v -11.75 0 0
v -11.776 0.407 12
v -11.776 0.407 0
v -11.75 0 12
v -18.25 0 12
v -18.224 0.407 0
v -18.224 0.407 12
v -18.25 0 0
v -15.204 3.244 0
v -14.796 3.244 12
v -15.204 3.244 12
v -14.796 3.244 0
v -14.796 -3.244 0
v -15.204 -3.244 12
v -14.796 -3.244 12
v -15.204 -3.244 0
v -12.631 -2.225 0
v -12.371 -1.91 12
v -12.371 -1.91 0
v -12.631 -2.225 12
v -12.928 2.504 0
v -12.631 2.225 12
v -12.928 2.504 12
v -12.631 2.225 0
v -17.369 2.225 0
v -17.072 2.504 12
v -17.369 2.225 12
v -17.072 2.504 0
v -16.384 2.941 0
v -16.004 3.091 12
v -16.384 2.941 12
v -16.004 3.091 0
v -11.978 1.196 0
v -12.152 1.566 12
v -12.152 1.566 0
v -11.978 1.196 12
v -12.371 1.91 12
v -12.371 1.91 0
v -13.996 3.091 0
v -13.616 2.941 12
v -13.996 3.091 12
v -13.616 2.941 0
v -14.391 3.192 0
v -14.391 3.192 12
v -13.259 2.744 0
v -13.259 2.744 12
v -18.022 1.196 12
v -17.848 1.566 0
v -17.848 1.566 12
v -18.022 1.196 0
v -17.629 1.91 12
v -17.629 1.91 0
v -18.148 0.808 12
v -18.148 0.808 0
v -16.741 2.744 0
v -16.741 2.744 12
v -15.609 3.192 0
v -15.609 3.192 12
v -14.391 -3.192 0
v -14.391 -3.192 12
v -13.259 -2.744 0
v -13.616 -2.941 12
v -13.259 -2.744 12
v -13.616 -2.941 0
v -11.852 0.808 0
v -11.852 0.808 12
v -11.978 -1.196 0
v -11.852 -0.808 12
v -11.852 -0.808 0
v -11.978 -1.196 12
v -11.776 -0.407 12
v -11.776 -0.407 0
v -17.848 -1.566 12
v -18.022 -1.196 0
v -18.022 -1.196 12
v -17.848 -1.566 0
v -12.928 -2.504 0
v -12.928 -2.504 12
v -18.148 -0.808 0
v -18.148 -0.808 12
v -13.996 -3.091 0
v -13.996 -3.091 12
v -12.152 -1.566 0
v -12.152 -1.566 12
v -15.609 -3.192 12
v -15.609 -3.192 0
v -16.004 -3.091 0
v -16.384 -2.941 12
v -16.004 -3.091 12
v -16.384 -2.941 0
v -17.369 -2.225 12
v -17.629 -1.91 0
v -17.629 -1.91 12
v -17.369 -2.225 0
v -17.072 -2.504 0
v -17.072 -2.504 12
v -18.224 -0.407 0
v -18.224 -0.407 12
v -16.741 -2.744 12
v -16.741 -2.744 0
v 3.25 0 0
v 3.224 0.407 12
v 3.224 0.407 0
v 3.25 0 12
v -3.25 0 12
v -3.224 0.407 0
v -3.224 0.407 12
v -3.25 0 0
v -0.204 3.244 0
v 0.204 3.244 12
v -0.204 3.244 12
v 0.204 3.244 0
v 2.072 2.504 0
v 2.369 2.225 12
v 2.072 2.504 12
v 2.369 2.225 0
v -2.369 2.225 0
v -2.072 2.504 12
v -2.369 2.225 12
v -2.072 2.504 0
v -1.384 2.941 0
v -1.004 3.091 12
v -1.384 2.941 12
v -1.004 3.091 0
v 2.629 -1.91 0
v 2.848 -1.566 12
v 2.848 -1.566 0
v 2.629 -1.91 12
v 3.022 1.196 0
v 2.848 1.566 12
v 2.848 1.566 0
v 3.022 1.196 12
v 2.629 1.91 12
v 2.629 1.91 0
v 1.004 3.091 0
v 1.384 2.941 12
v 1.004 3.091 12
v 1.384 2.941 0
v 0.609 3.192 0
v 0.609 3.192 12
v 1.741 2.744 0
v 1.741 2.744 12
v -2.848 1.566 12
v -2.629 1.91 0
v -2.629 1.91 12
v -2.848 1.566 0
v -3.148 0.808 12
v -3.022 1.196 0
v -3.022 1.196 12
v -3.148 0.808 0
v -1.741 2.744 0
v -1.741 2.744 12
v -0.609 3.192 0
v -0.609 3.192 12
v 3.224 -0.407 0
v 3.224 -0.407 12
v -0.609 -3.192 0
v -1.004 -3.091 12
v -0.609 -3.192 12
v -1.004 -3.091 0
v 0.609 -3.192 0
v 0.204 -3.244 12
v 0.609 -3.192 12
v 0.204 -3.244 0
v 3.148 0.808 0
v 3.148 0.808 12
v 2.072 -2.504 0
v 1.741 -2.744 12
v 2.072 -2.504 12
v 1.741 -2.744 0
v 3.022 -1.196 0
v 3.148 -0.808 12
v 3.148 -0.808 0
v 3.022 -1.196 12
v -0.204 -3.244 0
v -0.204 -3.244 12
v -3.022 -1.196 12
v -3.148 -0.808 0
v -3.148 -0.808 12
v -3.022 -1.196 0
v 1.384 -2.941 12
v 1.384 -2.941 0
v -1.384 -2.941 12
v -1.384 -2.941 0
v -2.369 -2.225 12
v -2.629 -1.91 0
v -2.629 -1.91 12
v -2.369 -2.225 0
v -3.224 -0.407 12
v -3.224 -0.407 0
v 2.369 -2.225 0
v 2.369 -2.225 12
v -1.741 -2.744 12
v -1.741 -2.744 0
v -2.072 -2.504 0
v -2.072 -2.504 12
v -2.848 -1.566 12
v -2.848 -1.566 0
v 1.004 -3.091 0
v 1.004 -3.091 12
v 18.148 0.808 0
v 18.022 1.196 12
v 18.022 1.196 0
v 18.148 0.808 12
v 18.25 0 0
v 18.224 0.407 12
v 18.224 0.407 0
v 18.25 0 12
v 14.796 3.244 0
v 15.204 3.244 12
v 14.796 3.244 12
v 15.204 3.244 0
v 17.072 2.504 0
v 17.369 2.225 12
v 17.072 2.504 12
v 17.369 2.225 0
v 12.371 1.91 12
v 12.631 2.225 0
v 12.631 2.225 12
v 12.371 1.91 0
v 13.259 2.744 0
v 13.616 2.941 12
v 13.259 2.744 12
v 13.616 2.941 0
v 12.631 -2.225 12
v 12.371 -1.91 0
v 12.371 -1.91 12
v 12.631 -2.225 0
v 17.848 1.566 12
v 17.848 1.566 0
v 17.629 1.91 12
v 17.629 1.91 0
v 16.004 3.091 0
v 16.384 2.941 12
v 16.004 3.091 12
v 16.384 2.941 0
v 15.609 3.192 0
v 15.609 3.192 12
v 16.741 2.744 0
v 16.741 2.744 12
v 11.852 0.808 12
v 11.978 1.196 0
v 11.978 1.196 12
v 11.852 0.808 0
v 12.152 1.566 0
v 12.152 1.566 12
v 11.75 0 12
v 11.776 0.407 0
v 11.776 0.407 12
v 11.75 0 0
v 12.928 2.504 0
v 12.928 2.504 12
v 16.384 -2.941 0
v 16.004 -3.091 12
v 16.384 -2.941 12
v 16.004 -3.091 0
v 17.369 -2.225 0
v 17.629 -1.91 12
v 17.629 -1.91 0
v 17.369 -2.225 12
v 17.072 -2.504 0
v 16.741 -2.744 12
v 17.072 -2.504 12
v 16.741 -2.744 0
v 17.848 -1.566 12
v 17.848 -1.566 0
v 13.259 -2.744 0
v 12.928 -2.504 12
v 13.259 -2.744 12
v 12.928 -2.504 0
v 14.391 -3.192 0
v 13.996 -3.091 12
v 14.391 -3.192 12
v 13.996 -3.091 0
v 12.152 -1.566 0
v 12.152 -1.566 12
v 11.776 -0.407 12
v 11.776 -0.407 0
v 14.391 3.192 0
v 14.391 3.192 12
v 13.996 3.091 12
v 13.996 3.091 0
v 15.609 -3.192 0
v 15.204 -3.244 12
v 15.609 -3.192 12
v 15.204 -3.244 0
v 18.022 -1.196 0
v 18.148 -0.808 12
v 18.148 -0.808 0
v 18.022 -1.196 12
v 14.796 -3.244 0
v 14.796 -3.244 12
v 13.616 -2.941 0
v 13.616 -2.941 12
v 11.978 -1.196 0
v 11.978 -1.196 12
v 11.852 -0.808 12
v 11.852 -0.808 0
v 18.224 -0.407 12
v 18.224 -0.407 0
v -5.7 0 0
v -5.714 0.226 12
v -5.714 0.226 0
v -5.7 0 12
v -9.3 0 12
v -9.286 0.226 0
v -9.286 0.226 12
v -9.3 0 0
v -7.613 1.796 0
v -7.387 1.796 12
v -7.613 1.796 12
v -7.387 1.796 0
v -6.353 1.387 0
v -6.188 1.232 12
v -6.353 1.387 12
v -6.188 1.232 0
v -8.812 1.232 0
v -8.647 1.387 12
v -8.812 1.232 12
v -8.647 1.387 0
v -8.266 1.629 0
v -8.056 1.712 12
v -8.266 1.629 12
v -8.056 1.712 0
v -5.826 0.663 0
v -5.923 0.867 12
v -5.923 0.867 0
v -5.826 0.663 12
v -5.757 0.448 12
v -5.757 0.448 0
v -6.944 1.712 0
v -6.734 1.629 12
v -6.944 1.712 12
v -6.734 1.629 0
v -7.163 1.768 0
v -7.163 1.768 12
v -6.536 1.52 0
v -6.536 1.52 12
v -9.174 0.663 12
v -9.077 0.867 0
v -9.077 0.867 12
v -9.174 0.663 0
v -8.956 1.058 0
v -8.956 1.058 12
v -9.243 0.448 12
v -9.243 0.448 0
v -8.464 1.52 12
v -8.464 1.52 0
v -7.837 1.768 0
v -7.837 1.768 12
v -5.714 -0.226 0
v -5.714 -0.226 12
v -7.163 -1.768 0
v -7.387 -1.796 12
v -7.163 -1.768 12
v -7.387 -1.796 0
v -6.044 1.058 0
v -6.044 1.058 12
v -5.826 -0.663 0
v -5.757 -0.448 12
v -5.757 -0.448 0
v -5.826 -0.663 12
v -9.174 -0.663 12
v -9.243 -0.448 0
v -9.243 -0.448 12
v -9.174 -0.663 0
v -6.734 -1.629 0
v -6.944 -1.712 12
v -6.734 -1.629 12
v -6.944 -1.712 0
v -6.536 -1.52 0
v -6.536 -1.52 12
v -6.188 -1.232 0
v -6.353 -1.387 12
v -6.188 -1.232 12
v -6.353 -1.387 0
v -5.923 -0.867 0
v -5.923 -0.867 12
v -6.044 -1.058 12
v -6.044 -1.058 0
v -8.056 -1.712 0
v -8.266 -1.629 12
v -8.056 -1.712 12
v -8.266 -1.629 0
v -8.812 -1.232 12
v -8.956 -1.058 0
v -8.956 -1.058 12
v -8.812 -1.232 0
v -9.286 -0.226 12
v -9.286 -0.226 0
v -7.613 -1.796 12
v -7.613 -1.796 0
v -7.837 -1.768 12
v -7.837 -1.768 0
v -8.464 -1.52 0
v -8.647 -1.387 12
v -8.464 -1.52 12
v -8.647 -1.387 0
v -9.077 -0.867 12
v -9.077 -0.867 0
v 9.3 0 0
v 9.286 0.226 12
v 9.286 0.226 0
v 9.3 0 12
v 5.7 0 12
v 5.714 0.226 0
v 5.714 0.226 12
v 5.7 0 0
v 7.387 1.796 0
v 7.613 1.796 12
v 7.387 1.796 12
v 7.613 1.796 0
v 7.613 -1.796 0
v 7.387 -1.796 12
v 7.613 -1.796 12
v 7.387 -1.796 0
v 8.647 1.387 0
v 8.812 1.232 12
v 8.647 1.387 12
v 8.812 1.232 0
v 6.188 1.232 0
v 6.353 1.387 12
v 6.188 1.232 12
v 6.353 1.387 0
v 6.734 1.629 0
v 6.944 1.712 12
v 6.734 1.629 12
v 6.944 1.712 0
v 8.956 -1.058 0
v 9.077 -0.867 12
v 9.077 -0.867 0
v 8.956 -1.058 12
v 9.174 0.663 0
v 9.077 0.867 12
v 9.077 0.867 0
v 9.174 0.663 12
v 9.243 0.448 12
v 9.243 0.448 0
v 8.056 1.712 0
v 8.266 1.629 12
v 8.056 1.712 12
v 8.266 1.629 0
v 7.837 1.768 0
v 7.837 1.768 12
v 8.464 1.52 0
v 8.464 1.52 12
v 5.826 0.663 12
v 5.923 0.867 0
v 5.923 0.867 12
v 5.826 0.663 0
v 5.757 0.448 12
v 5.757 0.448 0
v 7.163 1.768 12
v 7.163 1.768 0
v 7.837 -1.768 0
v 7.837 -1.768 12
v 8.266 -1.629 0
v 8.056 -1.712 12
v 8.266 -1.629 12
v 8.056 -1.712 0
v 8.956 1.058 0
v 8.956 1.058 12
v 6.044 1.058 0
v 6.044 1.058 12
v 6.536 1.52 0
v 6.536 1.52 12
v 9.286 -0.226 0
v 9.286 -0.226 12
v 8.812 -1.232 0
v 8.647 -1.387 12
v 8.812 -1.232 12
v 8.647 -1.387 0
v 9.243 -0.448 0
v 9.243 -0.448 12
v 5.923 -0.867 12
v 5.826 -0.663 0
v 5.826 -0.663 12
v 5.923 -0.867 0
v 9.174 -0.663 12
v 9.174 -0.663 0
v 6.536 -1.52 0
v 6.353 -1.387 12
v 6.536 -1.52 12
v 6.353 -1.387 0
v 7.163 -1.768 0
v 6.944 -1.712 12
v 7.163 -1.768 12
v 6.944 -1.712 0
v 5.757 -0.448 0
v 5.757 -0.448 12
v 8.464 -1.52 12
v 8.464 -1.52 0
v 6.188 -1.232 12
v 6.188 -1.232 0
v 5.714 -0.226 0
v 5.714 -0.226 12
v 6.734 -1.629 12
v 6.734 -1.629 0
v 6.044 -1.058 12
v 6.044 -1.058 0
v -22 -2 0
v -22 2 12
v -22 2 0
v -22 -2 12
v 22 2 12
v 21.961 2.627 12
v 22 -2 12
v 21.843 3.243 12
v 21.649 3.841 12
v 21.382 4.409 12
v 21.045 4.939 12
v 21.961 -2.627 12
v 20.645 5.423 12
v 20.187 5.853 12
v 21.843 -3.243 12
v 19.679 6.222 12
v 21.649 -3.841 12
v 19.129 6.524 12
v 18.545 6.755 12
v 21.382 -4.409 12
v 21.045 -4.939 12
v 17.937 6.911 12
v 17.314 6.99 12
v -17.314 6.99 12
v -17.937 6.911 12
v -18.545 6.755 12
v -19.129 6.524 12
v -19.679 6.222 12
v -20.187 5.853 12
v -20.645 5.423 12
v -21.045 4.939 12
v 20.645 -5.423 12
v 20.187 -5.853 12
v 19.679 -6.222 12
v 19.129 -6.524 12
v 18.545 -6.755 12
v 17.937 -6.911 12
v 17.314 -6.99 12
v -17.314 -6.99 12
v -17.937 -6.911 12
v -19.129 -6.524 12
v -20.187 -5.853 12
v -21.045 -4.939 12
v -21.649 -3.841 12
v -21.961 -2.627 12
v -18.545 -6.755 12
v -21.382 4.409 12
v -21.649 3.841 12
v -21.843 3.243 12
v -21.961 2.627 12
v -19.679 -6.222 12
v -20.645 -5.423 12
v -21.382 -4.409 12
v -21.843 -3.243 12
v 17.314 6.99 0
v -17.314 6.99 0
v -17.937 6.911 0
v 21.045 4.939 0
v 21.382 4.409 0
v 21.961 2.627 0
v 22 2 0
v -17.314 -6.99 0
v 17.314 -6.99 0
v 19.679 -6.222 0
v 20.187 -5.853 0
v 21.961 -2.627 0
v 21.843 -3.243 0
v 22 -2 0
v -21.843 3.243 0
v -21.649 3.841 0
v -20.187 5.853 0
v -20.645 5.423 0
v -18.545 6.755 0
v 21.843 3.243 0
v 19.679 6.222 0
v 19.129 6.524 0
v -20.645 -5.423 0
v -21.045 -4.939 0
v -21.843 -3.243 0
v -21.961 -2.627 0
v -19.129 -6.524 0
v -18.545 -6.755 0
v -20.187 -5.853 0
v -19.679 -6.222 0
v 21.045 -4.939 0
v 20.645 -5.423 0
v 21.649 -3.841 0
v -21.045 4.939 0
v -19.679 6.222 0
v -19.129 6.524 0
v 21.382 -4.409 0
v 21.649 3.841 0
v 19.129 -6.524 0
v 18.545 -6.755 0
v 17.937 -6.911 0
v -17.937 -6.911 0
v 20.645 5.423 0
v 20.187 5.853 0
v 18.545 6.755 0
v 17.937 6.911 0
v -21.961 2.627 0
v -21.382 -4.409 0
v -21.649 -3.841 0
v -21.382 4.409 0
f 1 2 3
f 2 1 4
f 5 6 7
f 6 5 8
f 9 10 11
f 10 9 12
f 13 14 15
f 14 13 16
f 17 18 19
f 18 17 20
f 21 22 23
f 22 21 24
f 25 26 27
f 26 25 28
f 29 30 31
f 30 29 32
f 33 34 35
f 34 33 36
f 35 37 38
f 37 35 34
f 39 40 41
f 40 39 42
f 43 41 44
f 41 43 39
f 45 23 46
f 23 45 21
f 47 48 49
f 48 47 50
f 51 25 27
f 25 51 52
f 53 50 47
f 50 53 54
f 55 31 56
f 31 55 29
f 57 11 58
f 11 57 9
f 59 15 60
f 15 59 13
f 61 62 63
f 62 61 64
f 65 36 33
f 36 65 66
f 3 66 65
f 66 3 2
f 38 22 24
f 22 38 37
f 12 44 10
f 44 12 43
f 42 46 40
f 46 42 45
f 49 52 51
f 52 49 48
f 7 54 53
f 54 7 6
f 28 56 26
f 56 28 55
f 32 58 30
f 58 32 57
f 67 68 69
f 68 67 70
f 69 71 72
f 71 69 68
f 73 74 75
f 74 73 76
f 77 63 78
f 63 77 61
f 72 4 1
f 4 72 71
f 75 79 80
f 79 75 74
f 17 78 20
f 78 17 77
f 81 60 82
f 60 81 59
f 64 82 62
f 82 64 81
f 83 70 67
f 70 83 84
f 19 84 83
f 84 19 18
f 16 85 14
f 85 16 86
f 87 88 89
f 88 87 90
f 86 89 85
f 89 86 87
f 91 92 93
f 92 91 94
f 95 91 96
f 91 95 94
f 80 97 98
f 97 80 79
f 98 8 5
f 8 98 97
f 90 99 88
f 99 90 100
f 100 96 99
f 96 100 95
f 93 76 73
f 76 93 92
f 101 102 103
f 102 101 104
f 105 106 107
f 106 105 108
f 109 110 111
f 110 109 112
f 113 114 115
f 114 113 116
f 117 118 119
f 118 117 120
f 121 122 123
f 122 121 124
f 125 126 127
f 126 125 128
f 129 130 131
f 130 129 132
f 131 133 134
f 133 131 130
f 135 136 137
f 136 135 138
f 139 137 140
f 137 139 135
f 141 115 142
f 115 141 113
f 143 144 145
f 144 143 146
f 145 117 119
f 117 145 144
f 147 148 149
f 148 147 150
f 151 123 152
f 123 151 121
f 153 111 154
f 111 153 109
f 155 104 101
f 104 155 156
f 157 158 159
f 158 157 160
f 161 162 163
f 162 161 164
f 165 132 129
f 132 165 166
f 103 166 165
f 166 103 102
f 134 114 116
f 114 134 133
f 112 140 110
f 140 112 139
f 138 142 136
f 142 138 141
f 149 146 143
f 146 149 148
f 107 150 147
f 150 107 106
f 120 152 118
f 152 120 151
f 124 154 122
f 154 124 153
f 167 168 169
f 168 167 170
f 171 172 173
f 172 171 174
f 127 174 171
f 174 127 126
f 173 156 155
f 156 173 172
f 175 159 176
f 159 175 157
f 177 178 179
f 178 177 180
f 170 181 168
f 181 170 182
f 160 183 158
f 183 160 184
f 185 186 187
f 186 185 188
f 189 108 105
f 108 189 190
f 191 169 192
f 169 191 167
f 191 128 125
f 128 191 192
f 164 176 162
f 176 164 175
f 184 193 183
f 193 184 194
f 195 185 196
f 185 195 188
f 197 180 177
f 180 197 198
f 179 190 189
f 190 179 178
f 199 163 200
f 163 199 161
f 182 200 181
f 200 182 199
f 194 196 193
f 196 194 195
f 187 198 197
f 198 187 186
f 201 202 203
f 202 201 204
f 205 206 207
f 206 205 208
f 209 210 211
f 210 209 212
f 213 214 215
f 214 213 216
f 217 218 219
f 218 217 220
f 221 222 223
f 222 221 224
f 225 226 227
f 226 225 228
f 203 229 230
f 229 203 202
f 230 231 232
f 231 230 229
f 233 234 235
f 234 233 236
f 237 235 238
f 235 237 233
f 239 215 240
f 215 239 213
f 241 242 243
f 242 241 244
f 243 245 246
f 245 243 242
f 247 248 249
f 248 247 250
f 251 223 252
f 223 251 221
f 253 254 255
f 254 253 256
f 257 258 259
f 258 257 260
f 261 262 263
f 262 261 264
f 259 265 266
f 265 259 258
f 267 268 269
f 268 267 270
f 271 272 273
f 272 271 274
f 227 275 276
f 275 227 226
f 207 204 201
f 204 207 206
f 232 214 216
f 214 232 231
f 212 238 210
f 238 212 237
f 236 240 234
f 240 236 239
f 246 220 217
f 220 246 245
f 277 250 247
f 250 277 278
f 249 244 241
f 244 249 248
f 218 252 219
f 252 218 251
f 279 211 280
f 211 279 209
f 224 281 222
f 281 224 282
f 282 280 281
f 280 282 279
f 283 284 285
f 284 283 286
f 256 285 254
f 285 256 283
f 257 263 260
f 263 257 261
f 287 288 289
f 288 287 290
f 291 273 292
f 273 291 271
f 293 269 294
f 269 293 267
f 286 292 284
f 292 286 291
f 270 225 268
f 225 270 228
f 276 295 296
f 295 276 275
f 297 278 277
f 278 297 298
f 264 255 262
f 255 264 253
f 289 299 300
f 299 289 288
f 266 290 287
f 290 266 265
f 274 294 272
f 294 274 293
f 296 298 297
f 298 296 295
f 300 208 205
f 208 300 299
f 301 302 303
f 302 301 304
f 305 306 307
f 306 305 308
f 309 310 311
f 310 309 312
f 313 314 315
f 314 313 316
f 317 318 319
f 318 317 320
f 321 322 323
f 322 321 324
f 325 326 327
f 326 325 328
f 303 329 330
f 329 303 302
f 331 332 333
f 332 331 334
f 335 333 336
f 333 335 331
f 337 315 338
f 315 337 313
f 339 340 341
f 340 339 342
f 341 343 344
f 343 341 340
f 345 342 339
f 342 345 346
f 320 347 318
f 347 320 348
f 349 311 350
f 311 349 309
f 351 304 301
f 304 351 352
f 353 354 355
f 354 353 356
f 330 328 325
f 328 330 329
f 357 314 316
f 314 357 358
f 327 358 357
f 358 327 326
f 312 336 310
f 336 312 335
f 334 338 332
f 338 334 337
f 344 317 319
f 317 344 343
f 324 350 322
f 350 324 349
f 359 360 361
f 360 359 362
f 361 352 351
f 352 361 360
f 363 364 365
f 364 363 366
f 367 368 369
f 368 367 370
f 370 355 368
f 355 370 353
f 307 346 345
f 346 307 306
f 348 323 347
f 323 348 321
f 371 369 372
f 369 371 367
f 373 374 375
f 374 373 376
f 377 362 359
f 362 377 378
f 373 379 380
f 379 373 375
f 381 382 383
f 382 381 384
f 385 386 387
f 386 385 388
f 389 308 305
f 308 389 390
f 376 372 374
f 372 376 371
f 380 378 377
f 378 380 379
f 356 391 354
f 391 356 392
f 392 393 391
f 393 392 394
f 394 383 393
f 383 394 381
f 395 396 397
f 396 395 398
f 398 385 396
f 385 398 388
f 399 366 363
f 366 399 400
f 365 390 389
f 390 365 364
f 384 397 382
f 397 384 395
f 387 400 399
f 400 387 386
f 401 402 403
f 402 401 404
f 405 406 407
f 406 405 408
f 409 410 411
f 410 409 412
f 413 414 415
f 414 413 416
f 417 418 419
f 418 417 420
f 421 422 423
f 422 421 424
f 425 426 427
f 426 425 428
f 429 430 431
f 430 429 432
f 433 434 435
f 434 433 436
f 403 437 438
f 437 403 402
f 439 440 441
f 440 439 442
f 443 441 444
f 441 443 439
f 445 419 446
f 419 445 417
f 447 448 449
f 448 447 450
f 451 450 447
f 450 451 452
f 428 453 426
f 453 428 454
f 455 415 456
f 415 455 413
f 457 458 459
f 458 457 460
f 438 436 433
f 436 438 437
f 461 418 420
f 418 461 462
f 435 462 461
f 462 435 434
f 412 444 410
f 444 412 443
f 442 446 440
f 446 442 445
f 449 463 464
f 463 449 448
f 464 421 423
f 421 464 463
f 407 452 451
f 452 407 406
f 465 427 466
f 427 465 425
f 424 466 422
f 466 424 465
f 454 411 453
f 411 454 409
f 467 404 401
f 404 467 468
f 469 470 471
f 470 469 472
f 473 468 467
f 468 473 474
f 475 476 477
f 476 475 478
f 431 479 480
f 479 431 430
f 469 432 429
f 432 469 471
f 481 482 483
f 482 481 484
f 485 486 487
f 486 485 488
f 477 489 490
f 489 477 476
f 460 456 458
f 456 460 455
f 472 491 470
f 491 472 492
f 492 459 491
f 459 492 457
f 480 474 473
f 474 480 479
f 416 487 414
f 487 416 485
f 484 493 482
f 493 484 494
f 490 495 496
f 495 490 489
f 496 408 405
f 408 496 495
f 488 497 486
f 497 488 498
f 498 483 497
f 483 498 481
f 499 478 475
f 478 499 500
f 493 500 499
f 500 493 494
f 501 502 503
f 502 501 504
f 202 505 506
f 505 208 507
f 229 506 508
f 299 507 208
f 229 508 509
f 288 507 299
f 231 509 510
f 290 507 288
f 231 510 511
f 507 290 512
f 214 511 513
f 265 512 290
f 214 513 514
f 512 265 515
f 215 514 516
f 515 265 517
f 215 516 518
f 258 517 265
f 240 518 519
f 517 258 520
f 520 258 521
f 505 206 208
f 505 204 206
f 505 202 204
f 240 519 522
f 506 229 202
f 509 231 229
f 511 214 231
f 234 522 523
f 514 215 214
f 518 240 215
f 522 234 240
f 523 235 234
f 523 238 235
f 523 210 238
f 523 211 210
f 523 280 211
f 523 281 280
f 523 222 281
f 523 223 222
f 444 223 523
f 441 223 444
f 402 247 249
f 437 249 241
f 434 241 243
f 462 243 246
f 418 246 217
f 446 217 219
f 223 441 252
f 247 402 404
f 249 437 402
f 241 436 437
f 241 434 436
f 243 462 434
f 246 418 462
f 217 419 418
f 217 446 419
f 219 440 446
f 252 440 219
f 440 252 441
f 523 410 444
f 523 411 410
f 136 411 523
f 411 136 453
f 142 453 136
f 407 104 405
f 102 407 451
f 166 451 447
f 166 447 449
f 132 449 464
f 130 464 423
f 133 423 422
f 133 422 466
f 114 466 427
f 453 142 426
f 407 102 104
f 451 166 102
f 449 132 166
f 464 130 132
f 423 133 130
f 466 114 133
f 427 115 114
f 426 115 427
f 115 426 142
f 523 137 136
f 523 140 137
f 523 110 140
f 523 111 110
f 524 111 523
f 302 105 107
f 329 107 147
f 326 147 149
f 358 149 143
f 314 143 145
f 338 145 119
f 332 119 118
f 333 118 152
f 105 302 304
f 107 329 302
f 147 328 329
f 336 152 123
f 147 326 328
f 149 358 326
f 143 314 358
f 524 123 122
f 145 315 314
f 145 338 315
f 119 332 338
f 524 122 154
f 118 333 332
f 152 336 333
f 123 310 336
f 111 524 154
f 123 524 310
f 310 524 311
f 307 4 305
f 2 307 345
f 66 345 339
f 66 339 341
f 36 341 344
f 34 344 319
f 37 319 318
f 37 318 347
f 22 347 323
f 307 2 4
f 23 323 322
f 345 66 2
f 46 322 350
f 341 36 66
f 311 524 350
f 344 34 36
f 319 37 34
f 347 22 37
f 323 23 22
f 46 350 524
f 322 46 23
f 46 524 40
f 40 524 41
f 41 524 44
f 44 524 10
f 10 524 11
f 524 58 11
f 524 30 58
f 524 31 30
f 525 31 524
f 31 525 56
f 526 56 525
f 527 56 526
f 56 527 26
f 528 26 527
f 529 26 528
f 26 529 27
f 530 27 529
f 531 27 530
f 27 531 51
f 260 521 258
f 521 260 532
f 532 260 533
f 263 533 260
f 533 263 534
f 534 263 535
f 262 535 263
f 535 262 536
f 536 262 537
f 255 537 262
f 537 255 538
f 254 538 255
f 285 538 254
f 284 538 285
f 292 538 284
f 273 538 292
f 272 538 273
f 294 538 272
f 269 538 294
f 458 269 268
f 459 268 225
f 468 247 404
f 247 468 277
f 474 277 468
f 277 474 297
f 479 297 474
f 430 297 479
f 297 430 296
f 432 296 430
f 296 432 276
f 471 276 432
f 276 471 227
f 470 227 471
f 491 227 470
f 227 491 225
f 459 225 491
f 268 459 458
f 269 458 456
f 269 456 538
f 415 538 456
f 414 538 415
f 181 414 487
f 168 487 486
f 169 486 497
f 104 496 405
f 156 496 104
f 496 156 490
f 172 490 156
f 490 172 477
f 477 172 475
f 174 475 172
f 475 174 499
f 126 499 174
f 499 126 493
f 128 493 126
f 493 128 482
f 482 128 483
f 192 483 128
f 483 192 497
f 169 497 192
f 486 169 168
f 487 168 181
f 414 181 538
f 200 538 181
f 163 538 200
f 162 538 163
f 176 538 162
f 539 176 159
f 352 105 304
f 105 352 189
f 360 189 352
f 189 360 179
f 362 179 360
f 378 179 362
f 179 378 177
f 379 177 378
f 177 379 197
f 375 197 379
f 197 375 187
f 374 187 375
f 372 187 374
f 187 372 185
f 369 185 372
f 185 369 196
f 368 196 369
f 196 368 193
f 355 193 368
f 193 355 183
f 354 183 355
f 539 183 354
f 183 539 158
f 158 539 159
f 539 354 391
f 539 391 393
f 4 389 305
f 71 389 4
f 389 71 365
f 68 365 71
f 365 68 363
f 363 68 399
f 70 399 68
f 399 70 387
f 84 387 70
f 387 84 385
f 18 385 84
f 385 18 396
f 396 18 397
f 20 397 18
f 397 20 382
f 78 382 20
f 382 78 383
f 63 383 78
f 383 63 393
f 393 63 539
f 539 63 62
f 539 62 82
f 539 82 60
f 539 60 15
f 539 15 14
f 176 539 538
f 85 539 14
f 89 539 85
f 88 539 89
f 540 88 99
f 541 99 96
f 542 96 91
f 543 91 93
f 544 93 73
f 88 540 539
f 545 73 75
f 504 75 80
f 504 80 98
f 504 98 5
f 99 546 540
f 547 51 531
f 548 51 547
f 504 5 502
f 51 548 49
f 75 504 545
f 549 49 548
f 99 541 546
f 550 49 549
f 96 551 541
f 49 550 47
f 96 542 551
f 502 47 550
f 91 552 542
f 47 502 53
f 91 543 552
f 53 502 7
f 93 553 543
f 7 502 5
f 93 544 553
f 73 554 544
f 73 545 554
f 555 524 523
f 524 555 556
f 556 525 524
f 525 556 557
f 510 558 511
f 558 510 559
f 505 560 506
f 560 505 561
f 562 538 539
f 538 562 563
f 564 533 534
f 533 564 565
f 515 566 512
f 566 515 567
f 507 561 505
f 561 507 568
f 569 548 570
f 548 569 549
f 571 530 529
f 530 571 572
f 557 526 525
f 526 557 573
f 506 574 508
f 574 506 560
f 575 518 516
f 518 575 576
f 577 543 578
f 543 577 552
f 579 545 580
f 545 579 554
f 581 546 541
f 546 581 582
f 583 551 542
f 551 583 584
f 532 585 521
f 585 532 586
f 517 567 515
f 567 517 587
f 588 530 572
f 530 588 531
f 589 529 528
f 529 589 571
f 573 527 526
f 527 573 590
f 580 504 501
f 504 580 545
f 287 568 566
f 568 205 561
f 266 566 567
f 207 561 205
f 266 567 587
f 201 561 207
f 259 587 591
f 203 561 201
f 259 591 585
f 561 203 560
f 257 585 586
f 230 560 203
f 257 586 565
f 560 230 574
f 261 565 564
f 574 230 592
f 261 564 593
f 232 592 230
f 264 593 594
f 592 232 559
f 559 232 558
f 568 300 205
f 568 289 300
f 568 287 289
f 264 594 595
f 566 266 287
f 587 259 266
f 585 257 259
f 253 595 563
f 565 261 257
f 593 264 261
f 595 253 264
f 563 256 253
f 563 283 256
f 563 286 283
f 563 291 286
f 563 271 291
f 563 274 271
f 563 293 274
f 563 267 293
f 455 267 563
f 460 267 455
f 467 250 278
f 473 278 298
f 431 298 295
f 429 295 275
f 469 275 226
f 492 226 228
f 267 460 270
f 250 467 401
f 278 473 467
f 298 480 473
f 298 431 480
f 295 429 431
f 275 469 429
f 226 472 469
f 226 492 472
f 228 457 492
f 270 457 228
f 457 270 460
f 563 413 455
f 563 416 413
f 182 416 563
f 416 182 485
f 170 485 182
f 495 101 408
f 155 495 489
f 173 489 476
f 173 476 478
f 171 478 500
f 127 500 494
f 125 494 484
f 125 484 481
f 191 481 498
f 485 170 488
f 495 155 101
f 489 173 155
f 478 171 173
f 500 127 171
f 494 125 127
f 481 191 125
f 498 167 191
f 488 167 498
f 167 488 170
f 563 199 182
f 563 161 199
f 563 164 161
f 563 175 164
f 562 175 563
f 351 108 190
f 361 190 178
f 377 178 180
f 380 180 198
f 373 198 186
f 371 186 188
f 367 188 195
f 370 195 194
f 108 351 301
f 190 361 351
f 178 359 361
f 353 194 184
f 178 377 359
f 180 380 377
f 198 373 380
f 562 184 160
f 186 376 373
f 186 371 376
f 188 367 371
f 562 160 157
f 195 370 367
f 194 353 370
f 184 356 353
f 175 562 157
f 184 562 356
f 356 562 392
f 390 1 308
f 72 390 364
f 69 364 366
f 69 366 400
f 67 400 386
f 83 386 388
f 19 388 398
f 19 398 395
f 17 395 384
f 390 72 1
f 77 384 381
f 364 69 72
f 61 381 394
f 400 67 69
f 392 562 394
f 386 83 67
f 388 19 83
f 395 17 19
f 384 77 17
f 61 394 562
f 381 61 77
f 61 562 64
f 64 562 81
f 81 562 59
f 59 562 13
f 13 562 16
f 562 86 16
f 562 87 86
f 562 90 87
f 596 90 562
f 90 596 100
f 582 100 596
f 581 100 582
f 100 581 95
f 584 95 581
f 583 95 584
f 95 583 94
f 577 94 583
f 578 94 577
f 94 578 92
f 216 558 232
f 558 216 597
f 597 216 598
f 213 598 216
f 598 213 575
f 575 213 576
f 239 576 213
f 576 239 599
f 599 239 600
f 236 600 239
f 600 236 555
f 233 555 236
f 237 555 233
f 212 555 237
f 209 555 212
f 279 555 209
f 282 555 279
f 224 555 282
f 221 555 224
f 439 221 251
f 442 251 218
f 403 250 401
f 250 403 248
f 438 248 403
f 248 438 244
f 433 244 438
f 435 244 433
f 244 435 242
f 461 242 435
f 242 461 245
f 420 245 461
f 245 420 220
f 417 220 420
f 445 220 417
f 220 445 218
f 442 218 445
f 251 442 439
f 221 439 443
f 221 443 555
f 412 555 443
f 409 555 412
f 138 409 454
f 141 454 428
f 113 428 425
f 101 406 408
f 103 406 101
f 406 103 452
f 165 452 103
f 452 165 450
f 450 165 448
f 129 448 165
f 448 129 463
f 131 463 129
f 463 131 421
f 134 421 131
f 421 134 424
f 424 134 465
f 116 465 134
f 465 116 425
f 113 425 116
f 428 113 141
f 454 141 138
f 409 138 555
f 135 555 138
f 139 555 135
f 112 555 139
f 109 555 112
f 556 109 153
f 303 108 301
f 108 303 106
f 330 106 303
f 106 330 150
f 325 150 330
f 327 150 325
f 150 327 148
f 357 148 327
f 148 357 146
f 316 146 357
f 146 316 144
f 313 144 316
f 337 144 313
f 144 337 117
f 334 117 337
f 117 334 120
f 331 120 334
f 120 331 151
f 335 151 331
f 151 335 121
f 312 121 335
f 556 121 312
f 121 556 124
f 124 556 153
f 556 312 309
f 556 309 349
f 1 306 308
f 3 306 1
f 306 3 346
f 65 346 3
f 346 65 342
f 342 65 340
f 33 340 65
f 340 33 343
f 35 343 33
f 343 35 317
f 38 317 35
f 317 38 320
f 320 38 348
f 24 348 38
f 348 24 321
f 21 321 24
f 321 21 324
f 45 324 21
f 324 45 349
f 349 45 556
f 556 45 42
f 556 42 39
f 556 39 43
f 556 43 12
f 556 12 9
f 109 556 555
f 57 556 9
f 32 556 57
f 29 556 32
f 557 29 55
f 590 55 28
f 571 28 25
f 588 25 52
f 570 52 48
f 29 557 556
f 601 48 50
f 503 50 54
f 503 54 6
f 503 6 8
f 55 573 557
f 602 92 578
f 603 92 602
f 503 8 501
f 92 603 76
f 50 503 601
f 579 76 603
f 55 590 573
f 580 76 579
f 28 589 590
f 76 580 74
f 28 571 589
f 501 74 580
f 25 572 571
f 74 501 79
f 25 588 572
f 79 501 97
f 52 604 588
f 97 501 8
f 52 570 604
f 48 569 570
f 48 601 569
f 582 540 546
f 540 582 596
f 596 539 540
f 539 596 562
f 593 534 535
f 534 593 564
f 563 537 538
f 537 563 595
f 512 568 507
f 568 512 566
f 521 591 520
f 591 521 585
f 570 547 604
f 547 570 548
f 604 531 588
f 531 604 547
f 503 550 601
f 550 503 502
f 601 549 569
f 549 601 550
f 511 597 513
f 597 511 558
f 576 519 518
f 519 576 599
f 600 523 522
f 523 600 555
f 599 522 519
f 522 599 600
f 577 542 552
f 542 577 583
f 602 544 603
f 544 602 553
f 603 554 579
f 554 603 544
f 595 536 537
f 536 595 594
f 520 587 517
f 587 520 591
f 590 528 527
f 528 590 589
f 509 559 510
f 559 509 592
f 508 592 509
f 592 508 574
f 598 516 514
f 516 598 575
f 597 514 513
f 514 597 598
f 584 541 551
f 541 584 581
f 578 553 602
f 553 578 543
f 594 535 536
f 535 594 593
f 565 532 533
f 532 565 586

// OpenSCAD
$fn = 50;


difference() {
	union() {
		translate(v = [0, 0, 0]) {
			rotate(a = [0, 0, 0]) {
				hull() {
					translate(v = [-17.0000000000, 2.0000000000, 0]) {
						rotate(a = [0, 0, 0]) {
							translate(v = [0, 0, 0]) {
								rotate(a = [0, 0, 0]) {
									cylinder(h = 12, r = 5);
								}
							}
						}
					}
					translate(v = [17.0000000000, 2.0000000000, 0]) {
						rotate(a = [0, 0, 0]) {
							translate(v = [0, 0, 0]) {
								rotate(a = [0, 0, 0]) {
									cylinder(h = 12, r = 5);
								}
							}
						}
					}
					translate(v = [-17.0000000000, -2.0000000000, 0]) {
						rotate(a = [0, 0, 0]) {
							translate(v = [0, 0, 0]) {
								rotate(a = [0, 0, 0]) {
									cylinder(h = 12, r = 5);
								}
							}
						}
					}
					translate(v = [17.0000000000, -2.0000000000, 0]) {
						rotate(a = [0, 0, 0]) {
							translate(v = [0, 0, 0]) {
								rotate(a = [0, 0, 0]) {
									cylinder(h = 12, r = 5);
								}
							}
						}
					}
				}
			}
		}
	}
	union() {
		translate(v = [-15.0000000000, 0.0000000000, 0]) {
			rotate(a = [0, 0, 0]) {
				translate(v = [0, 0, -50]) {
					rotate(a = [0, 0, 0]) {
						cylinder(h = 100, r = 3.2500000000);
					}
				}
			}
		}
		translate(v = [0.0000000000, 0.0000000000, 0]) {
			rotate(a = [0, 0, 0]) {
				translate(v = [0, 0, -50]) {
					rotate(a = [0, 0, 0]) {
						cylinder(h = 100, r = 3.2500000000);
					}
				}
			}
		}
		translate(v = [15.0000000000, 0.0000000000, 0]) {
			rotate(a = [0, 0, 0]) {
				translate(v = [0, 0, -50]) {
					rotate(a = [0, 0, 0]) {
						cylinder(h = 100, r = 3.2500000000);
					}
				}
			}
		}
		translate(v = [-15.0000000000, 0.0000000000, 0]) {
			rotate(a = [0, 0, 0]) {
				translate(v = [0, 0, -50]) {
					rotate(a = [0, 0, 0]) {
						cylinder(h = 100, r = 1.8000000000);
					}
				}
			}
		}
		translate(v = [-7.5000000000, 0.0000000000, 0]) {
			rotate(a = [0, 0, 0]) {
				translate(v = [0, 0, -50]) {
					rotate(a = [0, 0, 0]) {
						cylinder(h = 100, r = 1.8000000000);
					}
				}
			}
		}
		translate(v = [0.0000000000, 0.0000000000, 0]) {
			rotate(a = [0, 0, 0]) {
				translate(v = [0, 0, -50]) {
					rotate(a = [0, 0, 0]) {
						cylinder(h = 100, r = 1.8000000000);
					}
				}
			}
		}
		translate(v = [7.5000000000, 0.0000000000, 0]) {
			rotate(a = [0, 0, 0]) {
				translate(v = [0, 0, -50]) {
					rotate(a = [0, 0, 0]) {
						cylinder(h = 100, r = 1.8000000000);
					}
				}
			}
		}
		translate(v = [15.0000000000, 0.0000000000, 0]) {
			rotate(a = [0, 0, 0]) {
				translate(v = [0, 0, -50]) {
					rotate(a = [0, 0, 0]) {
						cylinder(h = 100, r = 1.8000000000);
					}
				}
			}
		}
	}
}
